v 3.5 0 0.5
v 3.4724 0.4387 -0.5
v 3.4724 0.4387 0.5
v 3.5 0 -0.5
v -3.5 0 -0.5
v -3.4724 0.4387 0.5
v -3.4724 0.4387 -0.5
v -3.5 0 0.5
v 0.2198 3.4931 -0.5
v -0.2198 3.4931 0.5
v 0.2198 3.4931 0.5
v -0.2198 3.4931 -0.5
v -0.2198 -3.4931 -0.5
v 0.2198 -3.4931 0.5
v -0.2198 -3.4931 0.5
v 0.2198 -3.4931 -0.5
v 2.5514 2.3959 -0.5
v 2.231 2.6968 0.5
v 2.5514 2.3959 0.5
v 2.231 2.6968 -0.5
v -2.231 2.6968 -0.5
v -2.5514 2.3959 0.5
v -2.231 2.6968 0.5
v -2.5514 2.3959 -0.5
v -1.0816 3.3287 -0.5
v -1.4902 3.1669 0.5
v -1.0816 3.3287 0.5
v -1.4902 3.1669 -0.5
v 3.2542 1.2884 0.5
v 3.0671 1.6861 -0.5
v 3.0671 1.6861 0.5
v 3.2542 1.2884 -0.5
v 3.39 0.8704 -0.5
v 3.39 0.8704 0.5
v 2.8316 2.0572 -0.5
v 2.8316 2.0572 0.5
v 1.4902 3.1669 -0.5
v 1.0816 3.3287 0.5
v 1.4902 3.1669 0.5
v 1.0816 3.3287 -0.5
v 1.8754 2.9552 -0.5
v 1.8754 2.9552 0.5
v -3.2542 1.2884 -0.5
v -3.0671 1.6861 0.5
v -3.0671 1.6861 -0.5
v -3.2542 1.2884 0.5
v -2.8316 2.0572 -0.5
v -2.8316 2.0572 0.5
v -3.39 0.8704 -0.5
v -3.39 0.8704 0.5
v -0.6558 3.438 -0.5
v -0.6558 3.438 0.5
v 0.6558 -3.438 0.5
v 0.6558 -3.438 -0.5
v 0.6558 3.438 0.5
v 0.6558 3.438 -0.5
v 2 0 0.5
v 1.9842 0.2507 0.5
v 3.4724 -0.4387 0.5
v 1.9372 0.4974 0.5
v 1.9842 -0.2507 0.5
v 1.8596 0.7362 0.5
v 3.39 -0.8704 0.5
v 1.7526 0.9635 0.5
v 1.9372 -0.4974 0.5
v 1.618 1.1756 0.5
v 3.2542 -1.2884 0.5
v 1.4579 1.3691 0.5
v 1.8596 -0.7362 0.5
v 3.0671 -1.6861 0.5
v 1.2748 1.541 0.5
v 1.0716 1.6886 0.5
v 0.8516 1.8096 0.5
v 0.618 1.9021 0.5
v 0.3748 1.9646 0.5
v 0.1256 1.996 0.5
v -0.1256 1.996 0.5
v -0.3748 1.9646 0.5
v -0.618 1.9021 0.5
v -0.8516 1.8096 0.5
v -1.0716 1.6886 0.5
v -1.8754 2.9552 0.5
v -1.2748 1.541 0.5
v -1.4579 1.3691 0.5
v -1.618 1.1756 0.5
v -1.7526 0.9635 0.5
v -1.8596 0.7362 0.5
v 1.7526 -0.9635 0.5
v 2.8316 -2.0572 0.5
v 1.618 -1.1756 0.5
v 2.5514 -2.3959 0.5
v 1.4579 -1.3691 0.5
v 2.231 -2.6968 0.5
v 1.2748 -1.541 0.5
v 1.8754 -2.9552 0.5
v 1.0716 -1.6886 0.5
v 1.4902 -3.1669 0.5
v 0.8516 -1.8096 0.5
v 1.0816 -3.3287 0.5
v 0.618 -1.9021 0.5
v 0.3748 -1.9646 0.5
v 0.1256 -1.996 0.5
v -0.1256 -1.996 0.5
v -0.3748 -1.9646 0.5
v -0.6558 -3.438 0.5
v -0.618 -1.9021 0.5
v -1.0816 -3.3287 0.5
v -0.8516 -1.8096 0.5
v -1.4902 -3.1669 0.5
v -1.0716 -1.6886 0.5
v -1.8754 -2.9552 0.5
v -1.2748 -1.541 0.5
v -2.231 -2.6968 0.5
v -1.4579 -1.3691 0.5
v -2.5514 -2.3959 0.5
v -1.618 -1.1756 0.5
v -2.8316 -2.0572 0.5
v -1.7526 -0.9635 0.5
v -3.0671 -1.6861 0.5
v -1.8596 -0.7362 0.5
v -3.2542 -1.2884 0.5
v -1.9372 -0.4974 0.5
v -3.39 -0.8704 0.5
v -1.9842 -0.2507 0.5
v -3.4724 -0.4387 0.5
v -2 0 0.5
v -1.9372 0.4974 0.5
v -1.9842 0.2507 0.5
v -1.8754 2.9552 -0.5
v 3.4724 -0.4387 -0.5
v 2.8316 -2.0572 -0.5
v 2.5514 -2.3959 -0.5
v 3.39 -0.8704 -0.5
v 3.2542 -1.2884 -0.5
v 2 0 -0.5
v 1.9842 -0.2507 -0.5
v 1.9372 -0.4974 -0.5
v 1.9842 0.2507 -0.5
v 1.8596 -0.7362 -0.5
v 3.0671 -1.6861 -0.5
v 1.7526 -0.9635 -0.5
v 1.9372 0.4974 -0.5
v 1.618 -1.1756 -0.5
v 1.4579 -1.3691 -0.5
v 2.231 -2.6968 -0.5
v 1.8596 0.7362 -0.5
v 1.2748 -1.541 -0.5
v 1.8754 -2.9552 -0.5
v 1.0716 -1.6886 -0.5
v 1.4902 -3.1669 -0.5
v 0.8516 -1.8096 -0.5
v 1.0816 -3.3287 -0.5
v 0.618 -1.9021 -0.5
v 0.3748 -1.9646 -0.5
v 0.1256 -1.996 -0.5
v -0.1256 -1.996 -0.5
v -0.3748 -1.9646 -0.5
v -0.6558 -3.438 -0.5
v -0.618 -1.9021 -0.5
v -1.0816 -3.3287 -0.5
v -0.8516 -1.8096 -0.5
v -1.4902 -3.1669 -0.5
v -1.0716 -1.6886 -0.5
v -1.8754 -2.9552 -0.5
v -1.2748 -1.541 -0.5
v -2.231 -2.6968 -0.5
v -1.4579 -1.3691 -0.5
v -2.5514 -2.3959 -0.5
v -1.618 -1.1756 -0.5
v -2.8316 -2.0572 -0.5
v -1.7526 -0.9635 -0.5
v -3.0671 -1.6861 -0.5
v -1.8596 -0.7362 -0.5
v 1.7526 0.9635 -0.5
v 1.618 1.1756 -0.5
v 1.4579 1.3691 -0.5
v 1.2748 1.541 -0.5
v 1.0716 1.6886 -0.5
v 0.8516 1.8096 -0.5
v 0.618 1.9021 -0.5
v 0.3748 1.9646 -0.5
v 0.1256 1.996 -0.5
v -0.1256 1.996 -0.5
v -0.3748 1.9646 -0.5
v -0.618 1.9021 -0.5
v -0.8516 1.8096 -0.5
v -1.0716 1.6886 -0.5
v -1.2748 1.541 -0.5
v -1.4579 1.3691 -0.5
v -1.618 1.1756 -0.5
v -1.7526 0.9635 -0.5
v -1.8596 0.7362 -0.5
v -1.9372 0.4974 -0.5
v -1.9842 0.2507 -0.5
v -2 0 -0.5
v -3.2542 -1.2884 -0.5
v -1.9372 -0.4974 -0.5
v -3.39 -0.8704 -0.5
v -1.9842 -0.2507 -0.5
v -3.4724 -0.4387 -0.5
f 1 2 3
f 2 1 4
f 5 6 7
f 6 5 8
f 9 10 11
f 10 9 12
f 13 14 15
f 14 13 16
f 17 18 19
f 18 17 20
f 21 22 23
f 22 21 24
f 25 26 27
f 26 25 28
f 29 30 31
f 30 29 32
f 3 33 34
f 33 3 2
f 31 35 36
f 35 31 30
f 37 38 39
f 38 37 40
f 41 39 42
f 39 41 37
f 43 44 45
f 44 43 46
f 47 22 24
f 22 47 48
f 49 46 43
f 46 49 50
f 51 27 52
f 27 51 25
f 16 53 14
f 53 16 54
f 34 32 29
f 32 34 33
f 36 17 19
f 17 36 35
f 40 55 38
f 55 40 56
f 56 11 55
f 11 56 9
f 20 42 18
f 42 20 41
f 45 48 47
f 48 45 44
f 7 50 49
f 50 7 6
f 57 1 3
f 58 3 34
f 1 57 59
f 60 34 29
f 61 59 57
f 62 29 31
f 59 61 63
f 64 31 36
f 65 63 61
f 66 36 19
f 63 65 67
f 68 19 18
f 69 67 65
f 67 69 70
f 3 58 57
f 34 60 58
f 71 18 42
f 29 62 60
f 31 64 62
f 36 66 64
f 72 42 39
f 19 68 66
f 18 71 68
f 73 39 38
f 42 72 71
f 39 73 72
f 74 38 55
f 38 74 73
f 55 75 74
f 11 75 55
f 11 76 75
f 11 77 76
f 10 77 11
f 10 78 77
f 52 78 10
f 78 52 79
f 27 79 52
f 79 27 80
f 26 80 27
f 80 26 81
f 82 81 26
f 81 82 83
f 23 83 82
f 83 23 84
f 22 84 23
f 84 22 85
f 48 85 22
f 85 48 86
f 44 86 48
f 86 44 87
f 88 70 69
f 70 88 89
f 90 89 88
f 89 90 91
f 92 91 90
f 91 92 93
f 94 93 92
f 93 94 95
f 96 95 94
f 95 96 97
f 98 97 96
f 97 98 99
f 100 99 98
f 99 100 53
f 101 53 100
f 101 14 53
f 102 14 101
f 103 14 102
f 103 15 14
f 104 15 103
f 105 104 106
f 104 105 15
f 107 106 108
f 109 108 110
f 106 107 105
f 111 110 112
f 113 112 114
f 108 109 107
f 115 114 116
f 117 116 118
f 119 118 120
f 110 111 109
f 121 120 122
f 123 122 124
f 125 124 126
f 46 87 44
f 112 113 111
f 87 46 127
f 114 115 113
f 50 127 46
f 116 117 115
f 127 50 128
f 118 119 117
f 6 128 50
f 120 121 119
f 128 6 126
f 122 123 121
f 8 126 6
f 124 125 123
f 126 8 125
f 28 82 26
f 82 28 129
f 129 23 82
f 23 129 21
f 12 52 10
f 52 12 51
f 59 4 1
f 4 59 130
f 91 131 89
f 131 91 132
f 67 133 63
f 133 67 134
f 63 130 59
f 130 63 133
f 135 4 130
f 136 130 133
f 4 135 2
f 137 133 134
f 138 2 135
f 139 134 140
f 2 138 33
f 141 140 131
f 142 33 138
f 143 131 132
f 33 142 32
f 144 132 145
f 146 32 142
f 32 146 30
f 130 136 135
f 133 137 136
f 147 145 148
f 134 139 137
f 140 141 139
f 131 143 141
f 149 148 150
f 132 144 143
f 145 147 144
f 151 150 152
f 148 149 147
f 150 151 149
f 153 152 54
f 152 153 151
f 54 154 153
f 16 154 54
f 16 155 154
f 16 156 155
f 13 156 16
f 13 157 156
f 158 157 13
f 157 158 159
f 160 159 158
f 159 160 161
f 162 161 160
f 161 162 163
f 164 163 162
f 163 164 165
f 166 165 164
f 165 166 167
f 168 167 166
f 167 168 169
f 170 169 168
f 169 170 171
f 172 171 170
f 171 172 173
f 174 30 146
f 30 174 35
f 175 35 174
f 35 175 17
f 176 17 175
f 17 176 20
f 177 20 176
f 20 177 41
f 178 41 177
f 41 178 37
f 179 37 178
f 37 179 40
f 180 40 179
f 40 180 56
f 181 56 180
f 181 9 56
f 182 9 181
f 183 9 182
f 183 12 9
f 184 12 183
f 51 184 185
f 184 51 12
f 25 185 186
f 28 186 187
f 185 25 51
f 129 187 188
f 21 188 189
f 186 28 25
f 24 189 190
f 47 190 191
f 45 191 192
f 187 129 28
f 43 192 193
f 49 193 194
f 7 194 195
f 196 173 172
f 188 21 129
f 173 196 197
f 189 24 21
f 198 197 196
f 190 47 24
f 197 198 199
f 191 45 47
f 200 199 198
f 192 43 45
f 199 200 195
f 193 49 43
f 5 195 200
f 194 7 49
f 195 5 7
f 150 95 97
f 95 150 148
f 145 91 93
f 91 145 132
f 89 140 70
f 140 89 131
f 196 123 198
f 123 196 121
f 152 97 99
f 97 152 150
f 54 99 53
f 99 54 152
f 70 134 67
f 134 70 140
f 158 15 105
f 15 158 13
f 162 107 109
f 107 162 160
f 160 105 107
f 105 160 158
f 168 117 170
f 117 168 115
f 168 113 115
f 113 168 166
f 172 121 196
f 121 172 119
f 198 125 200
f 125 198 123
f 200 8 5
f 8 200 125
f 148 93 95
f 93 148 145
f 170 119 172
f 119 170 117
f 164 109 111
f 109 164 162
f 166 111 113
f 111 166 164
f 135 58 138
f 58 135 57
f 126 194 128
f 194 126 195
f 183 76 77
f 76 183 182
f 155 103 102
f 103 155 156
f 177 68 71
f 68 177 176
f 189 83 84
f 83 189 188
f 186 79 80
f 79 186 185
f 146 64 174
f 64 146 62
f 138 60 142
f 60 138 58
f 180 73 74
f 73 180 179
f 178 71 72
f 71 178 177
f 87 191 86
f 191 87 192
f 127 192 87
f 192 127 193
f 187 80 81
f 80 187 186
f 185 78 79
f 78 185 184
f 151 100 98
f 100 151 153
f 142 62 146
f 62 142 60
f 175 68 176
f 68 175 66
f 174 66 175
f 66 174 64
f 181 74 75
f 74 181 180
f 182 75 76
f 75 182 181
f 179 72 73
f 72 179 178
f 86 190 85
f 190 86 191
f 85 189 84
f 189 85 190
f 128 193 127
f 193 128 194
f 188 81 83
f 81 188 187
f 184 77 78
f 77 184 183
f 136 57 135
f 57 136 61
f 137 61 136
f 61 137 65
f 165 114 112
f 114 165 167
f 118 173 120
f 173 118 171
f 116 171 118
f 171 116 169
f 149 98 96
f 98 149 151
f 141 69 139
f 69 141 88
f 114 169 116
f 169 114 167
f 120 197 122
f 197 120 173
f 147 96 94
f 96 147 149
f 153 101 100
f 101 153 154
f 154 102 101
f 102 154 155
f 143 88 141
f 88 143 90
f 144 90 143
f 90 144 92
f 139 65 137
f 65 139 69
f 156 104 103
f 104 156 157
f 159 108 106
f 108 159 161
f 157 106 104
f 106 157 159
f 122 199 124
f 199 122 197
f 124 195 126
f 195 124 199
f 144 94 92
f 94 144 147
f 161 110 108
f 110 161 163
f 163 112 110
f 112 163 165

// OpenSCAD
$fn = 50;


difference() {
	union() {
		translate(v = [0, 0, -0.5000000000]) {
			cylinder(h = 1, r = 3.5000000000);
		}
	}
	union() {
		translate(v = [0, 0, -100.0000000000]) {
			cylinder(h = 200, r = 2);
		}
	}
}
